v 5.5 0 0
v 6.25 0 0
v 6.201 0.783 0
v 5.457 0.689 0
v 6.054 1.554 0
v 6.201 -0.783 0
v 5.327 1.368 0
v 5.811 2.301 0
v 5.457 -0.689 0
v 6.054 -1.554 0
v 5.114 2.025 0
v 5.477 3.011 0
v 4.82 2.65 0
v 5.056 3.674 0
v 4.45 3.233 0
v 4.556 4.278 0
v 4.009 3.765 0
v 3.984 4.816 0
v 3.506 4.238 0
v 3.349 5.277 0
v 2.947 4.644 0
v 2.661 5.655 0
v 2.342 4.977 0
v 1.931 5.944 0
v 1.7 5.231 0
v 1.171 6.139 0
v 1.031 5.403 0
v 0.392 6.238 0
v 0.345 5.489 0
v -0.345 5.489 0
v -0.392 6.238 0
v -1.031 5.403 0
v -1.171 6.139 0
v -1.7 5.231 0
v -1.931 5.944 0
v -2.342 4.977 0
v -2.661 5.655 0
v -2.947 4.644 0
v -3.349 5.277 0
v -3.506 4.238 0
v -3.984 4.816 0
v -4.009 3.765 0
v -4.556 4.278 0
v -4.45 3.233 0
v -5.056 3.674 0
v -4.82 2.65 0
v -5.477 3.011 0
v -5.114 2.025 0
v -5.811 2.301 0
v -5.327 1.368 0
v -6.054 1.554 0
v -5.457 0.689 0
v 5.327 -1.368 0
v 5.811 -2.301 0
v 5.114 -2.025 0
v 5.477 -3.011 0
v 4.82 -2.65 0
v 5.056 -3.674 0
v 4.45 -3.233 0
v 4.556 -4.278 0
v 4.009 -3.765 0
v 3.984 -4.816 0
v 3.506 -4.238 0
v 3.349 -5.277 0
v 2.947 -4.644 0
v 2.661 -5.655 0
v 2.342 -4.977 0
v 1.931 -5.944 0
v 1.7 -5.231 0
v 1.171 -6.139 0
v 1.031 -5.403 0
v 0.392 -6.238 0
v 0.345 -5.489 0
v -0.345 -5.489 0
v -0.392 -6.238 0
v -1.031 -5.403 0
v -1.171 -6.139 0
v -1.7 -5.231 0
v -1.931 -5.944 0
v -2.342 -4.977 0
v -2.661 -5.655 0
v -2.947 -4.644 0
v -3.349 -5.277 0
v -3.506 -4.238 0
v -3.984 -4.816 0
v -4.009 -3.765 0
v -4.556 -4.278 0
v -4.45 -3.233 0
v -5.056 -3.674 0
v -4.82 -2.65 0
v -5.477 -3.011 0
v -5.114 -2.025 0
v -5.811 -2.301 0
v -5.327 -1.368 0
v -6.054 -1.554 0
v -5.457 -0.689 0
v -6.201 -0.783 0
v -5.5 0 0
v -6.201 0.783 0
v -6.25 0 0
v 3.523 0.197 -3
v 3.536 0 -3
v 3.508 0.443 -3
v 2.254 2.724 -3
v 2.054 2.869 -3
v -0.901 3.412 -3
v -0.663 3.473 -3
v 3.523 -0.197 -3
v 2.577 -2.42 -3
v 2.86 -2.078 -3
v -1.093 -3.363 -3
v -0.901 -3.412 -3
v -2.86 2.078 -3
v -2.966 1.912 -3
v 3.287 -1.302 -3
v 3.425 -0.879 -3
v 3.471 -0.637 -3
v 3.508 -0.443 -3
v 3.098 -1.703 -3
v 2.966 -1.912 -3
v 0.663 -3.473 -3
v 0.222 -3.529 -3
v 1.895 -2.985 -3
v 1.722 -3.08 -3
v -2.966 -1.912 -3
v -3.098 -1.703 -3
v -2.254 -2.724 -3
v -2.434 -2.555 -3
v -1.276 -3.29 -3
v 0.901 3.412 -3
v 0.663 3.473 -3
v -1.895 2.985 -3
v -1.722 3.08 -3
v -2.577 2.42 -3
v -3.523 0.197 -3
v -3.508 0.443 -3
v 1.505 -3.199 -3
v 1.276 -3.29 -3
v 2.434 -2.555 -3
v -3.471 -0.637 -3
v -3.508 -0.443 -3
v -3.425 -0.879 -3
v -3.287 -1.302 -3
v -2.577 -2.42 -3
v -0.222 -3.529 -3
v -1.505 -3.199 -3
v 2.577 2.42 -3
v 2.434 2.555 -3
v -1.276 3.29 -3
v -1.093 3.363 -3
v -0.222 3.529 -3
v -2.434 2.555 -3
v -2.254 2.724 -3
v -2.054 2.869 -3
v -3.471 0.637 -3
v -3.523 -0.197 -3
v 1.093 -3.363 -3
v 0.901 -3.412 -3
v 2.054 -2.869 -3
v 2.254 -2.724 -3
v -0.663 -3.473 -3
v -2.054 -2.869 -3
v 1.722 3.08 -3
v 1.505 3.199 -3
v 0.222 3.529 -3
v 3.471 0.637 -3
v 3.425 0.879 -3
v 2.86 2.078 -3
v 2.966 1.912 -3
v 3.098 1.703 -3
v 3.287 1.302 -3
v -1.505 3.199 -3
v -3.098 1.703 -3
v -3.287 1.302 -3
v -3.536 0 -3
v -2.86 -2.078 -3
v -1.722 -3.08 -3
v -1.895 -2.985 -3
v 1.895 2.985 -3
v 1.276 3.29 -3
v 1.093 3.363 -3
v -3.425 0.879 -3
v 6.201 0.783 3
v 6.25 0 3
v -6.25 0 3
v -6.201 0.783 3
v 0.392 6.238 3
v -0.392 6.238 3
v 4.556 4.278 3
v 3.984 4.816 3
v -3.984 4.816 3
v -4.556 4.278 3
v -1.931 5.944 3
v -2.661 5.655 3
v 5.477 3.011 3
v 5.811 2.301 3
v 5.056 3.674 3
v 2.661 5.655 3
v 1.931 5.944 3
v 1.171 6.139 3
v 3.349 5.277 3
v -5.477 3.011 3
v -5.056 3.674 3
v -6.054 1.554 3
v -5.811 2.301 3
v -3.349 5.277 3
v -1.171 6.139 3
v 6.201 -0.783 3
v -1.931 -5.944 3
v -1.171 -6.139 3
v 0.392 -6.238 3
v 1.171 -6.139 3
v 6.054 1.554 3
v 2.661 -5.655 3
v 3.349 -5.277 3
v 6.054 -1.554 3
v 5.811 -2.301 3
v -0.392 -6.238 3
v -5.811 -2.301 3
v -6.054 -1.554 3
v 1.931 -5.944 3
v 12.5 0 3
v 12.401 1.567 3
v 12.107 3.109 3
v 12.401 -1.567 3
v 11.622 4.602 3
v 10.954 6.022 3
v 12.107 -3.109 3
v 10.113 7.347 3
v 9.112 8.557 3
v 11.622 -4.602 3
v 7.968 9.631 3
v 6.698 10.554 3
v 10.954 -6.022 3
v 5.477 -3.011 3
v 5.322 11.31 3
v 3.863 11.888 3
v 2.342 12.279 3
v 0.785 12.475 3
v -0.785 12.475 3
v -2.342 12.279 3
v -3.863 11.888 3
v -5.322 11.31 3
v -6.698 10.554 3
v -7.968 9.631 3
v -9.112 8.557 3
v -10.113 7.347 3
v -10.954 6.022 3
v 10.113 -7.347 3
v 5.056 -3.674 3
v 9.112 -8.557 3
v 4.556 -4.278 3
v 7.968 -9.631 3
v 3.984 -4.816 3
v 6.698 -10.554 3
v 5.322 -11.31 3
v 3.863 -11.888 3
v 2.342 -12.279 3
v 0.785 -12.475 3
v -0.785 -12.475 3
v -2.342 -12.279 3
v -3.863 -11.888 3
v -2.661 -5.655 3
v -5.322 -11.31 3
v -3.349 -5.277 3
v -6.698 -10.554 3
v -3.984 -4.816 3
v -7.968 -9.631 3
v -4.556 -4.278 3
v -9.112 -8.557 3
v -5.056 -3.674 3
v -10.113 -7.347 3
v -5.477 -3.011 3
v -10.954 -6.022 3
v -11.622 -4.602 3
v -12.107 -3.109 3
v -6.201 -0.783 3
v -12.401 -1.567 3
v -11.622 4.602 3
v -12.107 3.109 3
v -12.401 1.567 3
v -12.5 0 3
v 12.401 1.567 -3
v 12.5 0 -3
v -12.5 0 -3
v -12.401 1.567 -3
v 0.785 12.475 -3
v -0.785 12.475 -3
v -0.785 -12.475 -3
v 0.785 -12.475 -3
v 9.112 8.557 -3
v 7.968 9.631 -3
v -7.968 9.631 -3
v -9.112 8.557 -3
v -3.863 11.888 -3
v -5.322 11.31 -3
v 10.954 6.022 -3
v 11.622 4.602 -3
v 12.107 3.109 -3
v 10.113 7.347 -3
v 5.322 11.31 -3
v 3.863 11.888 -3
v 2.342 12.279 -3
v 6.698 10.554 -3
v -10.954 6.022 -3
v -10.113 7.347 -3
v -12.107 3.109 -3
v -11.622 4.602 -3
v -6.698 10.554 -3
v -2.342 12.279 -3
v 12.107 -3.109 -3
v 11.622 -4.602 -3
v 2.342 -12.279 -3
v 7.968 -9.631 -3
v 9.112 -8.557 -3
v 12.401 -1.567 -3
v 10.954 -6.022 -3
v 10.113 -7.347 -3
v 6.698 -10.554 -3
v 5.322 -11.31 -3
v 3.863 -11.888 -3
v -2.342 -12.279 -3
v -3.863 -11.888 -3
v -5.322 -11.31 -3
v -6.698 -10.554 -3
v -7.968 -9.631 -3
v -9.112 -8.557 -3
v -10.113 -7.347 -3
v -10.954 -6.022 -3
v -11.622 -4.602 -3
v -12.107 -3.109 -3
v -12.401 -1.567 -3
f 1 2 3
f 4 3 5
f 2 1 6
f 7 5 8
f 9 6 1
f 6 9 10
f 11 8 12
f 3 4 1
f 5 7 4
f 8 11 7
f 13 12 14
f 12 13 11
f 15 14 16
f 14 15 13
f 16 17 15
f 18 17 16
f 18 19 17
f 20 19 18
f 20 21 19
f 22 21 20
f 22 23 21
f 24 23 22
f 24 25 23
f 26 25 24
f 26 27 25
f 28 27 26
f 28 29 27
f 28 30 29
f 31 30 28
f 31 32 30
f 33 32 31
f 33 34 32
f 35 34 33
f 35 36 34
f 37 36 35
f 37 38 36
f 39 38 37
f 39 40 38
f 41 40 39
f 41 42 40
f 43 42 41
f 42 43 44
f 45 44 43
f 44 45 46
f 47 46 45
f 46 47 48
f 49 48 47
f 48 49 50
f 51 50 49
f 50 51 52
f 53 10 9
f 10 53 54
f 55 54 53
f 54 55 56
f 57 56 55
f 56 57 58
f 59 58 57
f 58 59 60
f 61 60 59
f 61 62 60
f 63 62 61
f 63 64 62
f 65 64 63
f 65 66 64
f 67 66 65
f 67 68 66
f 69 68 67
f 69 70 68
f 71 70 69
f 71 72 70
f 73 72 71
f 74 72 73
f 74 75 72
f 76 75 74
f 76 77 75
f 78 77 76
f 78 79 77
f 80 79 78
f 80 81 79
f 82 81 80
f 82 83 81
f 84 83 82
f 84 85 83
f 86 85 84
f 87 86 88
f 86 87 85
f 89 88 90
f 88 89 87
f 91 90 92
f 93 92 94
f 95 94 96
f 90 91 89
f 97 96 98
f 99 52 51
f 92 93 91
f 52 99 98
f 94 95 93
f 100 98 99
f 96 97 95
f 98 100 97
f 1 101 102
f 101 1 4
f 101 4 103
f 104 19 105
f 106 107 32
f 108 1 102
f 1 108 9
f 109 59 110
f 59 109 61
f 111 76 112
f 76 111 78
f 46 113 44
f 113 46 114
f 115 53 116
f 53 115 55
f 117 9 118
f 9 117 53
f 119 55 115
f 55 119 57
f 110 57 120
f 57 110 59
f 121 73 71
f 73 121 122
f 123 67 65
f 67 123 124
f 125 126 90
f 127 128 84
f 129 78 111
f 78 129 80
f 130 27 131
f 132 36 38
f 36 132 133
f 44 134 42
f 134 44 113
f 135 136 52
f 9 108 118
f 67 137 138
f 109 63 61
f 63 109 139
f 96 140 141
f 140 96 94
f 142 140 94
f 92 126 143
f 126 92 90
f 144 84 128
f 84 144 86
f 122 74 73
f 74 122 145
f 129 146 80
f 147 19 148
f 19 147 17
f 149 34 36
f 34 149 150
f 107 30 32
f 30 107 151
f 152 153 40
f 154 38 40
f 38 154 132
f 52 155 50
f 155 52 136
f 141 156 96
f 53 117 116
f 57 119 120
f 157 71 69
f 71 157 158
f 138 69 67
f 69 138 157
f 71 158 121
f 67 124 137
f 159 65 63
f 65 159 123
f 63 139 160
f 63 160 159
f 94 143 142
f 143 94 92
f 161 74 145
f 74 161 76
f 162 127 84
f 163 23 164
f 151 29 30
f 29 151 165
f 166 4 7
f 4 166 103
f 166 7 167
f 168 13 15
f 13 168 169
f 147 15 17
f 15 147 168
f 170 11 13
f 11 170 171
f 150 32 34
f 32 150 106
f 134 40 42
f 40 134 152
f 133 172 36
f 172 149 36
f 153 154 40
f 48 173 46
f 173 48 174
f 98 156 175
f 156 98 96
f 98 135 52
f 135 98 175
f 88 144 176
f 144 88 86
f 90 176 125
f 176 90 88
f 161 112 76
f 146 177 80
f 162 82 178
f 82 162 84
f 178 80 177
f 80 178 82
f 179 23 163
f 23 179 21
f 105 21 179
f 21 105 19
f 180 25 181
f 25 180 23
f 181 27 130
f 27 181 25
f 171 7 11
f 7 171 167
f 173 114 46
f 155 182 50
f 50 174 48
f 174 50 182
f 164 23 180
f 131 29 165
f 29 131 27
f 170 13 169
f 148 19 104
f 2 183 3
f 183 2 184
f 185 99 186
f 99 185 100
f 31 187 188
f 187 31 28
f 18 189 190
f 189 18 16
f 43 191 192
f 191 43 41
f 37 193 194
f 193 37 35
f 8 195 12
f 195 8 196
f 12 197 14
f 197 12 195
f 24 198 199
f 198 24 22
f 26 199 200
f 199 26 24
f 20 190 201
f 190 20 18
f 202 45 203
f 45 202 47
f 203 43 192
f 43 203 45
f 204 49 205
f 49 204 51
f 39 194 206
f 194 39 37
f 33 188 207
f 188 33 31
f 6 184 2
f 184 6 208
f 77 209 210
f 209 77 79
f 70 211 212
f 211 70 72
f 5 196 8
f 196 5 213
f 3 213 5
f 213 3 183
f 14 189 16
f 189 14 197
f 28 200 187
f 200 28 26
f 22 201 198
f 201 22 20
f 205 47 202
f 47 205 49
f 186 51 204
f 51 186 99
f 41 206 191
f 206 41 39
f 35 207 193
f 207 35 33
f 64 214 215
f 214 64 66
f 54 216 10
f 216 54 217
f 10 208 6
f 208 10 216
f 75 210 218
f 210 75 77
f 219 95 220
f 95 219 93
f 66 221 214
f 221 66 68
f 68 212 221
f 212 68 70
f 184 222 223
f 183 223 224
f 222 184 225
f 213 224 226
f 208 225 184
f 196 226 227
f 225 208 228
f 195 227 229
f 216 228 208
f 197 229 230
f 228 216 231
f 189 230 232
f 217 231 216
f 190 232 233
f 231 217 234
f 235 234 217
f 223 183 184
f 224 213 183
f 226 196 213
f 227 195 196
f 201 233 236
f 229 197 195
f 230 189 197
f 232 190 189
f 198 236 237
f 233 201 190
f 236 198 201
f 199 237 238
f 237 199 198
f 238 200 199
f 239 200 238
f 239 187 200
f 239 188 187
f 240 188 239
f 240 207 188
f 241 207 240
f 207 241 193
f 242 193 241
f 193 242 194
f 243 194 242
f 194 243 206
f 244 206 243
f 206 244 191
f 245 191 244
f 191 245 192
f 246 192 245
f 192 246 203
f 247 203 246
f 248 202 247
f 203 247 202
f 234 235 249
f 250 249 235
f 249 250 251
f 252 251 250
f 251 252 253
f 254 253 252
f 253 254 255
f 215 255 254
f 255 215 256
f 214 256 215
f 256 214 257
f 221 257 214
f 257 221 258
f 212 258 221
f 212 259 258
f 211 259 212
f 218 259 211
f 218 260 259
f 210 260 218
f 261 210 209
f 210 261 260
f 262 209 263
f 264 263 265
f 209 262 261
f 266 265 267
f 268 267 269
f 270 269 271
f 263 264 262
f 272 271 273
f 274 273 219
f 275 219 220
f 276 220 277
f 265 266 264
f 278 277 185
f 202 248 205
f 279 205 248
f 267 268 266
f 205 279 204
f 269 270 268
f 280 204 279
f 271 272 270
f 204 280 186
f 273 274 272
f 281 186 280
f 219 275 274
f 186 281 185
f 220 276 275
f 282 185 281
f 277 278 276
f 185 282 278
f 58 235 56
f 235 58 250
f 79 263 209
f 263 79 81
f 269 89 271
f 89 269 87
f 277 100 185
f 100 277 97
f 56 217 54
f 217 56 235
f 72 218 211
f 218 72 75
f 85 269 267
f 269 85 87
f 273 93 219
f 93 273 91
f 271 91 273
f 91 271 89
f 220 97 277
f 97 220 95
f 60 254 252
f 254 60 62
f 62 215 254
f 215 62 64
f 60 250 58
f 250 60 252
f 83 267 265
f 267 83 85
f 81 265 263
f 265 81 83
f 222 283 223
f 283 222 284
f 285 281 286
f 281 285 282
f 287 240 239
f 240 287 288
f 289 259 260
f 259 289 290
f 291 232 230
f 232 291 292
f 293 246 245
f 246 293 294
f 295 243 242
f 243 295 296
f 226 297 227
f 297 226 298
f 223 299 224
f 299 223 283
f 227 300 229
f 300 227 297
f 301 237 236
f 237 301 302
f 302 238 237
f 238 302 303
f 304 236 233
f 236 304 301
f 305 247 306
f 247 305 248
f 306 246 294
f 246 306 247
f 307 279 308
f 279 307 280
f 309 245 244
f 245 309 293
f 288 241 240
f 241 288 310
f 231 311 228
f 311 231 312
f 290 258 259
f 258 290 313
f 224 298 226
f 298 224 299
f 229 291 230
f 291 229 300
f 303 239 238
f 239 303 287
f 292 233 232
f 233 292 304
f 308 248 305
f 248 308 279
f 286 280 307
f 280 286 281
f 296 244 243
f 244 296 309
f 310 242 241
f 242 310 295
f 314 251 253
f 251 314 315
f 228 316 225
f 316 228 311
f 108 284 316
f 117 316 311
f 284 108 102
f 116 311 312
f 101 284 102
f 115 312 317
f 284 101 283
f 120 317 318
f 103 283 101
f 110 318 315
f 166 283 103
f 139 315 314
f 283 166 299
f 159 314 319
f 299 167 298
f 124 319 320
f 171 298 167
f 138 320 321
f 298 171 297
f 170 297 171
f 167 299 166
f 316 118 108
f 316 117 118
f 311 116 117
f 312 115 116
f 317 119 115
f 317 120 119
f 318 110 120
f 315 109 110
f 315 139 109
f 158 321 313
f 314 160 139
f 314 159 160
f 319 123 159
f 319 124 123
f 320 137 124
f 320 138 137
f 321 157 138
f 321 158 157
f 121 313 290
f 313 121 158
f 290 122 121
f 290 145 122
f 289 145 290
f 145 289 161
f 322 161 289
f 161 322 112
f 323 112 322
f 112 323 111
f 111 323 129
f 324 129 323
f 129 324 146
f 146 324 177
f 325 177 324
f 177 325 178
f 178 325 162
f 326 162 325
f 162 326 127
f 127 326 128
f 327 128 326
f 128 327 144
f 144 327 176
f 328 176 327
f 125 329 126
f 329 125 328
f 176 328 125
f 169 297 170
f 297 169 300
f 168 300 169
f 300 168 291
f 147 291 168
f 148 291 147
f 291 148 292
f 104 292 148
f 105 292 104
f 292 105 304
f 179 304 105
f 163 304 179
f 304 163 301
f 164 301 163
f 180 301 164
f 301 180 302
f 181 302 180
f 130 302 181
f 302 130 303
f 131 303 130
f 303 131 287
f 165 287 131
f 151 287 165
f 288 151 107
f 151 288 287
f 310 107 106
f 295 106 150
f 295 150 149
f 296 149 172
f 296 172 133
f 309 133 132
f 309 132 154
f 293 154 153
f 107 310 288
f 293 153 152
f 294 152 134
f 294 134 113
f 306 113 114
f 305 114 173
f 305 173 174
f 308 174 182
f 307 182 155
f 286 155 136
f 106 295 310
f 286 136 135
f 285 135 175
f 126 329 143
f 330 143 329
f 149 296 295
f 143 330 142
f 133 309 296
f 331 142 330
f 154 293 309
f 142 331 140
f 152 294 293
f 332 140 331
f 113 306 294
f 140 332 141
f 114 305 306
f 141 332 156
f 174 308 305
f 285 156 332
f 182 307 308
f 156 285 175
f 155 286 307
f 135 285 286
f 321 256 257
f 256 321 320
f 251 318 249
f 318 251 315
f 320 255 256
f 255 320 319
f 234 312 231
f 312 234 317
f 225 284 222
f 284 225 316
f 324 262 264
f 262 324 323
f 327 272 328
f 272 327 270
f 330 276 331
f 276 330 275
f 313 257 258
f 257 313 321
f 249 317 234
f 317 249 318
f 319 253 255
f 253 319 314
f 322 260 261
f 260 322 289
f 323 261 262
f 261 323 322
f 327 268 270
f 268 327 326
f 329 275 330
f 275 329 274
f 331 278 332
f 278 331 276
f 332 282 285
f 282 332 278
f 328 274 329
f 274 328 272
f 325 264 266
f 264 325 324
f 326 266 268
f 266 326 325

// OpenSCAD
$fn = 50;


difference() {
	union() {
		translate(v = [0, 0, -3.0000000000]) {
			cylinder(h = 6, r = 12.5000000000);
		}
	}
	union() {
		translate(v = [0, 0, 0]) {
			rotate(a = [0, 0, 0]) {
				difference() {
					union() {
						translate(v = [0, 0, -6.0000000000]) {
							cylinder(h = 6, r = 2.2500000000);
						}
						translate(v = [0, 0, -4.2000000000]) {
							cylinder(h = 4.2000000000, r1 = 2.7500000000, r2 = 5.5000000000);
						}
						translate(v = [0, 0, -6.0000000000]) {
							cylinder(h = 6, r = 2.7500000000);
						}
						translate(v = [0, 0, -6.0000000000]) {
							cylinder(h = 6, r = 2.2500000000);
						}
					}
					union();
				}
			}
		}
		#cylinder(h = 3, r = 6.2500000000);
	}
}
